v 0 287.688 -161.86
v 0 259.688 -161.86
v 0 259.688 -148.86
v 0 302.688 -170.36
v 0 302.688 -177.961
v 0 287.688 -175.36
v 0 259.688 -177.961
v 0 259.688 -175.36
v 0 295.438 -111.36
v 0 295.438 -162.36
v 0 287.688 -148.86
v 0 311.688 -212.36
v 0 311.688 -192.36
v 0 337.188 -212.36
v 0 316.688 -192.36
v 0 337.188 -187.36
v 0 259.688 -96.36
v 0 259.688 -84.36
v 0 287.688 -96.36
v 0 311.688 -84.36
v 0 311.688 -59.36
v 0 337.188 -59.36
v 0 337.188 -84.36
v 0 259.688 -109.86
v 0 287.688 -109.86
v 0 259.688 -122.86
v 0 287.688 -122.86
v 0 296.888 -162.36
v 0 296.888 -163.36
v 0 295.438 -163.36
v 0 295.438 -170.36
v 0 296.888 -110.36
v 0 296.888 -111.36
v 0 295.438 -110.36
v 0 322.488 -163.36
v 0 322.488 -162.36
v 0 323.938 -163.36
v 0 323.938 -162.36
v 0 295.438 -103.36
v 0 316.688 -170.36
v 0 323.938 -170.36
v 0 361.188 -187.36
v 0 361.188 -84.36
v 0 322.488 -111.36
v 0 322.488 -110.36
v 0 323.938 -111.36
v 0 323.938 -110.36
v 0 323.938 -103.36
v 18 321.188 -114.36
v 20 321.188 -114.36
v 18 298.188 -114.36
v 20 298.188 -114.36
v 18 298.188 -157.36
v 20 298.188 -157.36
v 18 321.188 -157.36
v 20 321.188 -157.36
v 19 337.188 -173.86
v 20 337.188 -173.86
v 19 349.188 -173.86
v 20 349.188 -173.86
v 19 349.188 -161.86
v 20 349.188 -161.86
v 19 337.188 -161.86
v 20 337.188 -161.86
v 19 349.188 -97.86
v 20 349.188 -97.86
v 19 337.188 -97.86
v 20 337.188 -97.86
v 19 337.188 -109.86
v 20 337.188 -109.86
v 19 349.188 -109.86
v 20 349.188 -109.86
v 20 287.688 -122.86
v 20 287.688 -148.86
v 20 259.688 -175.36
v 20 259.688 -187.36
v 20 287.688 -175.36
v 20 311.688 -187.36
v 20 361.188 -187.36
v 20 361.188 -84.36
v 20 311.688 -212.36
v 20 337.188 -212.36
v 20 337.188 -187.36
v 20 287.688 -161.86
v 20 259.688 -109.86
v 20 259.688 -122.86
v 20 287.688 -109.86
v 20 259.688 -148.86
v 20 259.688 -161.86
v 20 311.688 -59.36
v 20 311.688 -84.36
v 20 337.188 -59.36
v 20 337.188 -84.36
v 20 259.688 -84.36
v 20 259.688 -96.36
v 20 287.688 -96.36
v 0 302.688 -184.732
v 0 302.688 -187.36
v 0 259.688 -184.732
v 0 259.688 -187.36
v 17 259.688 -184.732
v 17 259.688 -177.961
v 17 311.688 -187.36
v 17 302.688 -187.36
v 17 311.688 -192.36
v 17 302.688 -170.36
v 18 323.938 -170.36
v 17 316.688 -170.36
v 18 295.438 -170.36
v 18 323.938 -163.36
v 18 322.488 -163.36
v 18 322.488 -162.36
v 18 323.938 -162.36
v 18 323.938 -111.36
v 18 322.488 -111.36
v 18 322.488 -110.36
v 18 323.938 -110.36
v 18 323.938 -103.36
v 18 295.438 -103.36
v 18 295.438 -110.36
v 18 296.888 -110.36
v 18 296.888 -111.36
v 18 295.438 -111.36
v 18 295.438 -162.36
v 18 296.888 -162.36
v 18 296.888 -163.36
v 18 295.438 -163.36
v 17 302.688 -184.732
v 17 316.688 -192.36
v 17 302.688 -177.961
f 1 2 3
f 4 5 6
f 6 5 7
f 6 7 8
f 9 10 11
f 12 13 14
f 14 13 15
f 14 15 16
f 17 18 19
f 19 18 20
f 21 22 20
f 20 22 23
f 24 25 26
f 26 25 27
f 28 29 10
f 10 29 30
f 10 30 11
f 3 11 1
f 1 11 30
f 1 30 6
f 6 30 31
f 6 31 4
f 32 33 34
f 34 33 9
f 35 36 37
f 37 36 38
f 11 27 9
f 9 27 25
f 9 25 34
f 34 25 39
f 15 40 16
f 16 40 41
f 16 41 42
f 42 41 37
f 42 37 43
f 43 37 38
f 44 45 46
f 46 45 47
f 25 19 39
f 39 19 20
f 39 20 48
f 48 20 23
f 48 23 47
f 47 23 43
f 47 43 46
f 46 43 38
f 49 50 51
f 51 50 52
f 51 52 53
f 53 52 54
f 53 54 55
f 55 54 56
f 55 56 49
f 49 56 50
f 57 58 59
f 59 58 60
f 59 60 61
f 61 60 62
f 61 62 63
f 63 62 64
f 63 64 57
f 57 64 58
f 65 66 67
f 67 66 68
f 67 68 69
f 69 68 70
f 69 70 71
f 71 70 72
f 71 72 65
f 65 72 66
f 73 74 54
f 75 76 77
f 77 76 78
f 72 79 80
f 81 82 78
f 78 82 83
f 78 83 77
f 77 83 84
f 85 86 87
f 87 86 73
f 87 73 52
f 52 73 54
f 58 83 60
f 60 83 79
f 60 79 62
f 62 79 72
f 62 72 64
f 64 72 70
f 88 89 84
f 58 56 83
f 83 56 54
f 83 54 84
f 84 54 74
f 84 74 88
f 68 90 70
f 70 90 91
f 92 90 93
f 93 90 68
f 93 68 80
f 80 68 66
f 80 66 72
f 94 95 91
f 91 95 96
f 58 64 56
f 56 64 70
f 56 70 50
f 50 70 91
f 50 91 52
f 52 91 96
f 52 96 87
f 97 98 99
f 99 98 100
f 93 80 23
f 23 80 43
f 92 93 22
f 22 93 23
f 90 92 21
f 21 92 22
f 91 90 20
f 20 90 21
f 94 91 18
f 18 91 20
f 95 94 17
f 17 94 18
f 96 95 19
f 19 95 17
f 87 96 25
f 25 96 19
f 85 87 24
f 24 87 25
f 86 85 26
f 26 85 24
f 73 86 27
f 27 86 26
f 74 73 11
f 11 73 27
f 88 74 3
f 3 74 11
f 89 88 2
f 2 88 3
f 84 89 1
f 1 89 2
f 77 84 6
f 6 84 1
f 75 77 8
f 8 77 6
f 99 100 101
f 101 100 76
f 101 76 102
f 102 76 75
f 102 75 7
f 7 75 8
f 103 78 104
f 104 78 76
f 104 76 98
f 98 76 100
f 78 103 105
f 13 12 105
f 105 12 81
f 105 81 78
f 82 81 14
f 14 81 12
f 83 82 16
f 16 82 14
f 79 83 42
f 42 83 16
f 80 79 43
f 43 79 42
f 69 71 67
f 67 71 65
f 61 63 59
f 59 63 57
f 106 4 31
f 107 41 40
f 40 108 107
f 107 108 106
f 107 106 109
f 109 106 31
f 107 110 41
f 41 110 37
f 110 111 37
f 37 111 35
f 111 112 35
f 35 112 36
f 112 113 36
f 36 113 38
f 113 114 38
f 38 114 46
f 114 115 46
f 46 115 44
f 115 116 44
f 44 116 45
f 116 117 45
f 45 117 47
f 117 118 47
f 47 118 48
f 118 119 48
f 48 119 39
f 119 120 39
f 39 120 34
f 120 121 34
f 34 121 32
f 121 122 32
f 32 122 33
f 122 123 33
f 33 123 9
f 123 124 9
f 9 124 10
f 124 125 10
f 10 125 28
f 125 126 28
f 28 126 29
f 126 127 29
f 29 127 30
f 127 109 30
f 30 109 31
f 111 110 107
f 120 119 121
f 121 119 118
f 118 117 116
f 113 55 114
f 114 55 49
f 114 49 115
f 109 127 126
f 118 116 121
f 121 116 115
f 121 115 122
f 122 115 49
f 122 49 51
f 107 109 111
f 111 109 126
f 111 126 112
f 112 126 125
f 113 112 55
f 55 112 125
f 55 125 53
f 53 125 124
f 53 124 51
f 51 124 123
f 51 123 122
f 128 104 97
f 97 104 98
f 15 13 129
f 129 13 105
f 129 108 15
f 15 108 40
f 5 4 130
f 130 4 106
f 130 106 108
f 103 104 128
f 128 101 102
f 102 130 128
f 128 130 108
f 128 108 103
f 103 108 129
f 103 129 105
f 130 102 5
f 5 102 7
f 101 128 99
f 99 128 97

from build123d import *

# Parameters (mm, degrees)
SKETCH_2_W          = 12
SKETCH_2_H          = 12
SKETCH_2_W_2        = 43
SKETCH_2_H_2        = 23
EXTRUDE_1_DEPTH     = 20
SKETCH_3_W          = 86.114957356
SKETCH_3_H          = 19.725477411
EXTRUDE_2_DEPTH     = 19
CUT_EXTRUDE_1_DEPTH = 18
CUT_EXTRUDE_2_DEPTH = 17


with BuildPart() as part:
    # 草图2 → 凸台-拉伸1 (new body)
    with BuildSketch(Plane(origin=(0, 0, 0), x_dir=(0, 0, -1), z_dir=(1, 0, 0))):
        Polygon((109.86010867, 259.687677289), (122.86010867, 259.687677289), (122.86010867, 287.687677289), (148.86010867, 287.687677289), (148.86010867, 259.687677289), (161.86010867, 259.687677289), (161.86010867, 287.687677289), (175.36010867, 287.687677289), (175.36010867, 259.687677289), (187.36010867, 259.687677289), (187.36010867, 311.687677289), (212.36010867, 311.687677289), (212.36010867, 337.187677289), (187.36010867, 337.187677289), (187.36010867, 361.187677289), (84.36010867, 361.187677289), (84.36010867, 337.187677289), (59.36010867, 337.187677289), (59.36010867, 311.687677289), (84.36010867, 311.687677289), (84.36010867, 259.687677289), (96.36010867, 259.687677289), (96.36010867, 287.687677289), (109.86010867, 287.687677289), align=None)
        with Locations((103.86010867, 343.187677289)):
            Rectangle(SKETCH_2_W, SKETCH_2_H, mode=Mode.SUBTRACT)
        with Locations((135.86010867, 309.687677289)):
            Rectangle(SKETCH_2_W_2, SKETCH_2_H_2, mode=Mode.SUBTRACT)
        with Locations((167.86010867, 343.187677289)):
            Rectangle(SKETCH_2_W, SKETCH_2_H, mode=Mode.SUBTRACT)
    extrude(amount=EXTRUDE_1_DEPTH)

    # 草图3 → 凸台-拉伸2 (add)
    with BuildSketch(Plane.ZY):
        with Locations((-135.786506142, 344.147634955)):
            Rectangle(SKETCH_3_W, SKETCH_3_H)
    extrude(amount=-EXTRUDE_2_DEPTH)

    # 草图4 → 切除-拉伸1 (cut)
    with BuildSketch(Plane.ZY):
        Polygon((-170.36010867, 323.937677289), (-163.36010867, 323.937677289), (-163.36010867, 322.487677289), (-162.36010867, 322.487677289), (-162.36010867, 323.937677289), (-111.36010867, 323.937677289), (-111.36010867, 322.487677289), (-110.36010867, 322.487677289), (-110.36010867, 323.937677289), (-103.36010867, 323.937677289), (-103.36010867, 295.437677289), (-110.36010867, 295.437677289), (-110.36010867, 296.887677289), (-111.36010867, 296.887677289), (-111.36010867, 295.437677289), (-162.36010867, 295.437677289), (-162.36010867, 296.887677289), (-163.36010867, 296.887677289), (-163.36010867, 295.437677289), (-170.36010867, 295.437677289), align=None)
    extrude(amount=-CUT_EXTRUDE_1_DEPTH, mode=Mode.SUBTRACT)

    # 草图5 → 切除-拉伸2 (cut)
    with BuildSketch(Plane.ZY):
        Polygon((-192.36010867, 316.687677289), (-157.36010867, 316.687677289), (-157.36010867, 302.687677289), (-177.960754488, 302.687677289), (-177.960754488, 259.687677289), (-184.732187032, 259.687677289), (-184.732187032, 302.687677289), (-192.36010867, 302.687677289), align=None)
    extrude(amount=-CUT_EXTRUDE_2_DEPTH, mode=Mode.SUBTRACT)


solid = part.part
